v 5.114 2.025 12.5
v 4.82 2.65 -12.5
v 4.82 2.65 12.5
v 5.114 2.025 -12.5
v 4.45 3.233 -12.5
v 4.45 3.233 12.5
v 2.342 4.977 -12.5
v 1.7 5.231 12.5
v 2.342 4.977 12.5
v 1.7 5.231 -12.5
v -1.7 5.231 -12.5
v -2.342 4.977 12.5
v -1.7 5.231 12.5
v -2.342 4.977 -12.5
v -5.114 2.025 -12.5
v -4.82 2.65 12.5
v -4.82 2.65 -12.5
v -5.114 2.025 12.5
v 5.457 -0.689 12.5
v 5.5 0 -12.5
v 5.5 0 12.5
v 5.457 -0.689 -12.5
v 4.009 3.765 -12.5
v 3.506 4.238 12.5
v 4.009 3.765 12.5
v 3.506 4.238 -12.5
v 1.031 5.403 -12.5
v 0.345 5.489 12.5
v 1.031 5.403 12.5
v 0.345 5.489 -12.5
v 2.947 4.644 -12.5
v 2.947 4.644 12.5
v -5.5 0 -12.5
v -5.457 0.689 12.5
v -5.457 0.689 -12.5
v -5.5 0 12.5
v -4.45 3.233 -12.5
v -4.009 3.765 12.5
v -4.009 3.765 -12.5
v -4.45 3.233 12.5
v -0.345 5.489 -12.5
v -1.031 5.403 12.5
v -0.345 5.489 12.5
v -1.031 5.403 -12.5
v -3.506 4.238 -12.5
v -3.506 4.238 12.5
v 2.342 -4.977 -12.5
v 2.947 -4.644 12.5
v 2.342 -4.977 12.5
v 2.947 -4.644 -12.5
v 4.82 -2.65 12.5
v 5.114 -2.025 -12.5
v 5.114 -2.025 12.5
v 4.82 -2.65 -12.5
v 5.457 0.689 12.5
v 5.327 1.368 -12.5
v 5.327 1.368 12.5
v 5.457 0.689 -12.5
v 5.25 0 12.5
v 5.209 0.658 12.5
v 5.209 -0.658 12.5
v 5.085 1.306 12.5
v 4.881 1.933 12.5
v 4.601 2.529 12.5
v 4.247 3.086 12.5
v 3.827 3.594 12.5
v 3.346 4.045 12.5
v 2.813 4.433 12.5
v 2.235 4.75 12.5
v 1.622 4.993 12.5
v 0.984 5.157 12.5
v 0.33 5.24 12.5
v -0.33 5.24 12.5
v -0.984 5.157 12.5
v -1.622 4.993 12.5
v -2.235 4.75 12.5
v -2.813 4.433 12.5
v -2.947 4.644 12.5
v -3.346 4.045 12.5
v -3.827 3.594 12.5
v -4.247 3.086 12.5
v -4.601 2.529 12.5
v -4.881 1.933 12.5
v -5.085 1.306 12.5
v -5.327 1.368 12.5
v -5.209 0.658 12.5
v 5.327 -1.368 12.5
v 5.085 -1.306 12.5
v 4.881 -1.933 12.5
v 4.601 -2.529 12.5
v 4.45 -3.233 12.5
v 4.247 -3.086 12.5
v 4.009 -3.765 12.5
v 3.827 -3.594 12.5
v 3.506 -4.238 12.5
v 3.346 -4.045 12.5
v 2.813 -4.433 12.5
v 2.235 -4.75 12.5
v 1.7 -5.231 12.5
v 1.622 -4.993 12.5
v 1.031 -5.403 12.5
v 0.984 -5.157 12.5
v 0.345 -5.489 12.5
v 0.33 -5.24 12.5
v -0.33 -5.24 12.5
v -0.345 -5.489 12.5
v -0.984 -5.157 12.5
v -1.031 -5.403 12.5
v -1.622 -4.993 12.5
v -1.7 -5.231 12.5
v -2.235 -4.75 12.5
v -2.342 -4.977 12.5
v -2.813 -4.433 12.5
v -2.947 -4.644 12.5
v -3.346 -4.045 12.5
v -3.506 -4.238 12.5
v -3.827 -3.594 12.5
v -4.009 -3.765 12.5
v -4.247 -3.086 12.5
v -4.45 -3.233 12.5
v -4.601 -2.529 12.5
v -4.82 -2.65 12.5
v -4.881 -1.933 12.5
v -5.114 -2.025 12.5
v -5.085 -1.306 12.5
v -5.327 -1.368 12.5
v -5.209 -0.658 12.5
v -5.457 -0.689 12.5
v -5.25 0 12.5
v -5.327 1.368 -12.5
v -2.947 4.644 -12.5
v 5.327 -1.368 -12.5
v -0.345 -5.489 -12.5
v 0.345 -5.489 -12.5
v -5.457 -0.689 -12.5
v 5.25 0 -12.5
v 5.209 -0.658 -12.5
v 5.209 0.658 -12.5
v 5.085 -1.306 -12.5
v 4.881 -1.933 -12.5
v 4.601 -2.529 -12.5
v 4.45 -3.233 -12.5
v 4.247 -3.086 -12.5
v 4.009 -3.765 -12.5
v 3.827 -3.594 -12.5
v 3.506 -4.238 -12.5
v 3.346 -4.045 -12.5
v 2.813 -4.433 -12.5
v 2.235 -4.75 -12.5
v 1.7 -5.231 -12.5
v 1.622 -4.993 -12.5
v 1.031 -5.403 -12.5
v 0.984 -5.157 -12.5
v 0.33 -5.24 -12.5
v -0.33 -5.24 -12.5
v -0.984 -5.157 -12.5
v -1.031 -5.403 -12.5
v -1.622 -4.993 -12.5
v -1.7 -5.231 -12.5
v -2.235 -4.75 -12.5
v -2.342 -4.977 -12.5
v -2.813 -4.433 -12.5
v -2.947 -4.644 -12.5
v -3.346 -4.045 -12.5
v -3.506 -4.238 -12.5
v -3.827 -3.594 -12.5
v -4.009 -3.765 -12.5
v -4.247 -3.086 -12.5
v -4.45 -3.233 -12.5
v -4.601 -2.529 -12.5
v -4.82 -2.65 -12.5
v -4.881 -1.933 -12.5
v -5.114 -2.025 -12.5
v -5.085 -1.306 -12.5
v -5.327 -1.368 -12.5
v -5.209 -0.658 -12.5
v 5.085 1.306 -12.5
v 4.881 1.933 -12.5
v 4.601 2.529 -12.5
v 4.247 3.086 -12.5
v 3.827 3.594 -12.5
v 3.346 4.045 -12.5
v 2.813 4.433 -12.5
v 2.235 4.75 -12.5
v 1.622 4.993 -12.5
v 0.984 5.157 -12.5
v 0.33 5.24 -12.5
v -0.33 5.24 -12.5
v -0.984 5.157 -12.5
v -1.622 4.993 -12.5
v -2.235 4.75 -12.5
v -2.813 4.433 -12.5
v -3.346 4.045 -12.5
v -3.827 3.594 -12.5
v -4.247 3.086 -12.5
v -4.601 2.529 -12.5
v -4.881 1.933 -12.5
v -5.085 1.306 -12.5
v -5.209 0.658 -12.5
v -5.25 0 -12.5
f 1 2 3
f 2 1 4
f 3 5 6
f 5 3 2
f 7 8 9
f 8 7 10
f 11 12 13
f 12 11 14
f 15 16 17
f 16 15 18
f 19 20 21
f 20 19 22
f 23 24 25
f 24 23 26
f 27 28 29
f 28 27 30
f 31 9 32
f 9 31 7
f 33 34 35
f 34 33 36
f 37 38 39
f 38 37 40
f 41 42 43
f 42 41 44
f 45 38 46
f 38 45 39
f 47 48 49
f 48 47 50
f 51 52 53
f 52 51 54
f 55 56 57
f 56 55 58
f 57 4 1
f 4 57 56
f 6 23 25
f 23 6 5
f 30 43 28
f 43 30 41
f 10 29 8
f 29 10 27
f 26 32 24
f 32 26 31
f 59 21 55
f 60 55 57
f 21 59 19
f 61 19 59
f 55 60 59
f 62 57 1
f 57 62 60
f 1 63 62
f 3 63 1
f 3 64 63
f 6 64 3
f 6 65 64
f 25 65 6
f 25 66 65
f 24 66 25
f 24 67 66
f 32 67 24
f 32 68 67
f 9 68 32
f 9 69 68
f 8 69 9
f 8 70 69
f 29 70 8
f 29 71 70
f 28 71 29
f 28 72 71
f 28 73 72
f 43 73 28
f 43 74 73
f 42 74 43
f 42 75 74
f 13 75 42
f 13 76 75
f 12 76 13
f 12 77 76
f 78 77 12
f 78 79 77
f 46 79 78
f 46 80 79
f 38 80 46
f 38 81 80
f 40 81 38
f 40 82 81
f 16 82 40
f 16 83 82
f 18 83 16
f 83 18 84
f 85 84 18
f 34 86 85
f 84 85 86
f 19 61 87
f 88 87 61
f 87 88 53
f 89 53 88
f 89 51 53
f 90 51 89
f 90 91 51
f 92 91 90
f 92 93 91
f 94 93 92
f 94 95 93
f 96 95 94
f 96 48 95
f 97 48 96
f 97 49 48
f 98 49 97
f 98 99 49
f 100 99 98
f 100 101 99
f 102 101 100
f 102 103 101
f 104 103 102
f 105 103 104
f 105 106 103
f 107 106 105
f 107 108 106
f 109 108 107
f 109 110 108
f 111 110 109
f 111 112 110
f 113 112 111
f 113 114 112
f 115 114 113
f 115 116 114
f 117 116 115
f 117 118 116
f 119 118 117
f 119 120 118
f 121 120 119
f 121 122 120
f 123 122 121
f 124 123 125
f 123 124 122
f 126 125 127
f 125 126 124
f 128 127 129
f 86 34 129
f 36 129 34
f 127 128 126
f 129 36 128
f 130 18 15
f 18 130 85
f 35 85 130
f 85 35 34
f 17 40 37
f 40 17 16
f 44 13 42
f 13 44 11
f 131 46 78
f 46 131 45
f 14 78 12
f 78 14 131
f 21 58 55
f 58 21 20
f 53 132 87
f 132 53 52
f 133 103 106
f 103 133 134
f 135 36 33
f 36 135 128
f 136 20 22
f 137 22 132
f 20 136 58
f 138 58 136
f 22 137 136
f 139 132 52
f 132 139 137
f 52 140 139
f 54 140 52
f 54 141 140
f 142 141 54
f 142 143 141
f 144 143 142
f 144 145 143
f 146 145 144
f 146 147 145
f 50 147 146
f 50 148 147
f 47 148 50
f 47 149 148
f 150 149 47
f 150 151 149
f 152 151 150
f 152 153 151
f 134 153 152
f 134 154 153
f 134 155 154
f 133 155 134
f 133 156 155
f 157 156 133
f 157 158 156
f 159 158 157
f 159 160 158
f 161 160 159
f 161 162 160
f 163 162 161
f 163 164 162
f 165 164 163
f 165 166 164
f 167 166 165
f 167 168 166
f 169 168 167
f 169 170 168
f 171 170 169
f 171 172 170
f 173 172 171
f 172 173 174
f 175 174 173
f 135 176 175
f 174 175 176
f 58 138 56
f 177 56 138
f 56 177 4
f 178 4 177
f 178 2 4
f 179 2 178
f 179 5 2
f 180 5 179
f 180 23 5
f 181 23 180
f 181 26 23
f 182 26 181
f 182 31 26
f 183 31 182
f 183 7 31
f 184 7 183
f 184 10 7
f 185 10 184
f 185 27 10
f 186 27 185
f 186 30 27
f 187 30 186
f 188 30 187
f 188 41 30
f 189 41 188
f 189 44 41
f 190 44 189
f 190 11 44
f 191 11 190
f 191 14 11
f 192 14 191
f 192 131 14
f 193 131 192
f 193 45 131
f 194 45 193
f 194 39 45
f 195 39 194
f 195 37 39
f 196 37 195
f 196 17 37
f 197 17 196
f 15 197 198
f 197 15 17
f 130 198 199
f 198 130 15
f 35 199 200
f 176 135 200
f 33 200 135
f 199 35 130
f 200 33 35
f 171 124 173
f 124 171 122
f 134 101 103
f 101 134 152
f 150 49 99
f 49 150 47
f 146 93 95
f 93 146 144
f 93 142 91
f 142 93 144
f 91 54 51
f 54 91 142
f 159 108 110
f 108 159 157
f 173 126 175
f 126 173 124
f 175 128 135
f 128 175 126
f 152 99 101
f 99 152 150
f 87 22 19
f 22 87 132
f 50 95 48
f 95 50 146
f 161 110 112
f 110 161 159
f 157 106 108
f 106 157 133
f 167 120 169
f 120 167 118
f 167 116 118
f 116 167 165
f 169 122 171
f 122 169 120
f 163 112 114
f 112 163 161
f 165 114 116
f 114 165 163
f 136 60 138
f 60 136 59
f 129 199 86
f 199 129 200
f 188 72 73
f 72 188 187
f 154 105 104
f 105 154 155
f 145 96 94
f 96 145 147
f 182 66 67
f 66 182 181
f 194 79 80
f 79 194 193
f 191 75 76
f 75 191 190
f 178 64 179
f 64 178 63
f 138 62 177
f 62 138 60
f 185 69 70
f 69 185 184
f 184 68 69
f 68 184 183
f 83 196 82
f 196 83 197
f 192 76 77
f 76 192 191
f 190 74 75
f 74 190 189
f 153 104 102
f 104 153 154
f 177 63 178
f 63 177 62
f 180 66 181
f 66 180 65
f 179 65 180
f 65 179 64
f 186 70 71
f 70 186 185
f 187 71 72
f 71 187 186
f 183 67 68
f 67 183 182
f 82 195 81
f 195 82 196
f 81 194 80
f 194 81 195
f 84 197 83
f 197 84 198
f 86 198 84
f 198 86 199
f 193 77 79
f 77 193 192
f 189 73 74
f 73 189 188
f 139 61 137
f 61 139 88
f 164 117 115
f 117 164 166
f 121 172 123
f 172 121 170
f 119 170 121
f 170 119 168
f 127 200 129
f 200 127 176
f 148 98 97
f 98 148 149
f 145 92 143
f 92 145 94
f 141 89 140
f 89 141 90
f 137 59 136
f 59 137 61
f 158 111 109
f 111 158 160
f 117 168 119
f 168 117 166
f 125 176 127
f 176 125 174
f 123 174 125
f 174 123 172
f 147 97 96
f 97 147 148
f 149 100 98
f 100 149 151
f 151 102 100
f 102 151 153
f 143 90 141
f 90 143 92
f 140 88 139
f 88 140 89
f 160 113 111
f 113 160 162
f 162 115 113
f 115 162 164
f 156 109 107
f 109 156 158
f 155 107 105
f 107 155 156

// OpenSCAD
$fn = 50;


difference() {
	union() {
		translate(v = [0, 0, -12.5000000000]) {
			cylinder(h = 25, r = 5.5000000000);
		}
	}
	union() {
		translate(v = [0, 0, -100.0000000000]) {
			cylinder(h = 200, r = 5.2500000000);
		}
	}
}
